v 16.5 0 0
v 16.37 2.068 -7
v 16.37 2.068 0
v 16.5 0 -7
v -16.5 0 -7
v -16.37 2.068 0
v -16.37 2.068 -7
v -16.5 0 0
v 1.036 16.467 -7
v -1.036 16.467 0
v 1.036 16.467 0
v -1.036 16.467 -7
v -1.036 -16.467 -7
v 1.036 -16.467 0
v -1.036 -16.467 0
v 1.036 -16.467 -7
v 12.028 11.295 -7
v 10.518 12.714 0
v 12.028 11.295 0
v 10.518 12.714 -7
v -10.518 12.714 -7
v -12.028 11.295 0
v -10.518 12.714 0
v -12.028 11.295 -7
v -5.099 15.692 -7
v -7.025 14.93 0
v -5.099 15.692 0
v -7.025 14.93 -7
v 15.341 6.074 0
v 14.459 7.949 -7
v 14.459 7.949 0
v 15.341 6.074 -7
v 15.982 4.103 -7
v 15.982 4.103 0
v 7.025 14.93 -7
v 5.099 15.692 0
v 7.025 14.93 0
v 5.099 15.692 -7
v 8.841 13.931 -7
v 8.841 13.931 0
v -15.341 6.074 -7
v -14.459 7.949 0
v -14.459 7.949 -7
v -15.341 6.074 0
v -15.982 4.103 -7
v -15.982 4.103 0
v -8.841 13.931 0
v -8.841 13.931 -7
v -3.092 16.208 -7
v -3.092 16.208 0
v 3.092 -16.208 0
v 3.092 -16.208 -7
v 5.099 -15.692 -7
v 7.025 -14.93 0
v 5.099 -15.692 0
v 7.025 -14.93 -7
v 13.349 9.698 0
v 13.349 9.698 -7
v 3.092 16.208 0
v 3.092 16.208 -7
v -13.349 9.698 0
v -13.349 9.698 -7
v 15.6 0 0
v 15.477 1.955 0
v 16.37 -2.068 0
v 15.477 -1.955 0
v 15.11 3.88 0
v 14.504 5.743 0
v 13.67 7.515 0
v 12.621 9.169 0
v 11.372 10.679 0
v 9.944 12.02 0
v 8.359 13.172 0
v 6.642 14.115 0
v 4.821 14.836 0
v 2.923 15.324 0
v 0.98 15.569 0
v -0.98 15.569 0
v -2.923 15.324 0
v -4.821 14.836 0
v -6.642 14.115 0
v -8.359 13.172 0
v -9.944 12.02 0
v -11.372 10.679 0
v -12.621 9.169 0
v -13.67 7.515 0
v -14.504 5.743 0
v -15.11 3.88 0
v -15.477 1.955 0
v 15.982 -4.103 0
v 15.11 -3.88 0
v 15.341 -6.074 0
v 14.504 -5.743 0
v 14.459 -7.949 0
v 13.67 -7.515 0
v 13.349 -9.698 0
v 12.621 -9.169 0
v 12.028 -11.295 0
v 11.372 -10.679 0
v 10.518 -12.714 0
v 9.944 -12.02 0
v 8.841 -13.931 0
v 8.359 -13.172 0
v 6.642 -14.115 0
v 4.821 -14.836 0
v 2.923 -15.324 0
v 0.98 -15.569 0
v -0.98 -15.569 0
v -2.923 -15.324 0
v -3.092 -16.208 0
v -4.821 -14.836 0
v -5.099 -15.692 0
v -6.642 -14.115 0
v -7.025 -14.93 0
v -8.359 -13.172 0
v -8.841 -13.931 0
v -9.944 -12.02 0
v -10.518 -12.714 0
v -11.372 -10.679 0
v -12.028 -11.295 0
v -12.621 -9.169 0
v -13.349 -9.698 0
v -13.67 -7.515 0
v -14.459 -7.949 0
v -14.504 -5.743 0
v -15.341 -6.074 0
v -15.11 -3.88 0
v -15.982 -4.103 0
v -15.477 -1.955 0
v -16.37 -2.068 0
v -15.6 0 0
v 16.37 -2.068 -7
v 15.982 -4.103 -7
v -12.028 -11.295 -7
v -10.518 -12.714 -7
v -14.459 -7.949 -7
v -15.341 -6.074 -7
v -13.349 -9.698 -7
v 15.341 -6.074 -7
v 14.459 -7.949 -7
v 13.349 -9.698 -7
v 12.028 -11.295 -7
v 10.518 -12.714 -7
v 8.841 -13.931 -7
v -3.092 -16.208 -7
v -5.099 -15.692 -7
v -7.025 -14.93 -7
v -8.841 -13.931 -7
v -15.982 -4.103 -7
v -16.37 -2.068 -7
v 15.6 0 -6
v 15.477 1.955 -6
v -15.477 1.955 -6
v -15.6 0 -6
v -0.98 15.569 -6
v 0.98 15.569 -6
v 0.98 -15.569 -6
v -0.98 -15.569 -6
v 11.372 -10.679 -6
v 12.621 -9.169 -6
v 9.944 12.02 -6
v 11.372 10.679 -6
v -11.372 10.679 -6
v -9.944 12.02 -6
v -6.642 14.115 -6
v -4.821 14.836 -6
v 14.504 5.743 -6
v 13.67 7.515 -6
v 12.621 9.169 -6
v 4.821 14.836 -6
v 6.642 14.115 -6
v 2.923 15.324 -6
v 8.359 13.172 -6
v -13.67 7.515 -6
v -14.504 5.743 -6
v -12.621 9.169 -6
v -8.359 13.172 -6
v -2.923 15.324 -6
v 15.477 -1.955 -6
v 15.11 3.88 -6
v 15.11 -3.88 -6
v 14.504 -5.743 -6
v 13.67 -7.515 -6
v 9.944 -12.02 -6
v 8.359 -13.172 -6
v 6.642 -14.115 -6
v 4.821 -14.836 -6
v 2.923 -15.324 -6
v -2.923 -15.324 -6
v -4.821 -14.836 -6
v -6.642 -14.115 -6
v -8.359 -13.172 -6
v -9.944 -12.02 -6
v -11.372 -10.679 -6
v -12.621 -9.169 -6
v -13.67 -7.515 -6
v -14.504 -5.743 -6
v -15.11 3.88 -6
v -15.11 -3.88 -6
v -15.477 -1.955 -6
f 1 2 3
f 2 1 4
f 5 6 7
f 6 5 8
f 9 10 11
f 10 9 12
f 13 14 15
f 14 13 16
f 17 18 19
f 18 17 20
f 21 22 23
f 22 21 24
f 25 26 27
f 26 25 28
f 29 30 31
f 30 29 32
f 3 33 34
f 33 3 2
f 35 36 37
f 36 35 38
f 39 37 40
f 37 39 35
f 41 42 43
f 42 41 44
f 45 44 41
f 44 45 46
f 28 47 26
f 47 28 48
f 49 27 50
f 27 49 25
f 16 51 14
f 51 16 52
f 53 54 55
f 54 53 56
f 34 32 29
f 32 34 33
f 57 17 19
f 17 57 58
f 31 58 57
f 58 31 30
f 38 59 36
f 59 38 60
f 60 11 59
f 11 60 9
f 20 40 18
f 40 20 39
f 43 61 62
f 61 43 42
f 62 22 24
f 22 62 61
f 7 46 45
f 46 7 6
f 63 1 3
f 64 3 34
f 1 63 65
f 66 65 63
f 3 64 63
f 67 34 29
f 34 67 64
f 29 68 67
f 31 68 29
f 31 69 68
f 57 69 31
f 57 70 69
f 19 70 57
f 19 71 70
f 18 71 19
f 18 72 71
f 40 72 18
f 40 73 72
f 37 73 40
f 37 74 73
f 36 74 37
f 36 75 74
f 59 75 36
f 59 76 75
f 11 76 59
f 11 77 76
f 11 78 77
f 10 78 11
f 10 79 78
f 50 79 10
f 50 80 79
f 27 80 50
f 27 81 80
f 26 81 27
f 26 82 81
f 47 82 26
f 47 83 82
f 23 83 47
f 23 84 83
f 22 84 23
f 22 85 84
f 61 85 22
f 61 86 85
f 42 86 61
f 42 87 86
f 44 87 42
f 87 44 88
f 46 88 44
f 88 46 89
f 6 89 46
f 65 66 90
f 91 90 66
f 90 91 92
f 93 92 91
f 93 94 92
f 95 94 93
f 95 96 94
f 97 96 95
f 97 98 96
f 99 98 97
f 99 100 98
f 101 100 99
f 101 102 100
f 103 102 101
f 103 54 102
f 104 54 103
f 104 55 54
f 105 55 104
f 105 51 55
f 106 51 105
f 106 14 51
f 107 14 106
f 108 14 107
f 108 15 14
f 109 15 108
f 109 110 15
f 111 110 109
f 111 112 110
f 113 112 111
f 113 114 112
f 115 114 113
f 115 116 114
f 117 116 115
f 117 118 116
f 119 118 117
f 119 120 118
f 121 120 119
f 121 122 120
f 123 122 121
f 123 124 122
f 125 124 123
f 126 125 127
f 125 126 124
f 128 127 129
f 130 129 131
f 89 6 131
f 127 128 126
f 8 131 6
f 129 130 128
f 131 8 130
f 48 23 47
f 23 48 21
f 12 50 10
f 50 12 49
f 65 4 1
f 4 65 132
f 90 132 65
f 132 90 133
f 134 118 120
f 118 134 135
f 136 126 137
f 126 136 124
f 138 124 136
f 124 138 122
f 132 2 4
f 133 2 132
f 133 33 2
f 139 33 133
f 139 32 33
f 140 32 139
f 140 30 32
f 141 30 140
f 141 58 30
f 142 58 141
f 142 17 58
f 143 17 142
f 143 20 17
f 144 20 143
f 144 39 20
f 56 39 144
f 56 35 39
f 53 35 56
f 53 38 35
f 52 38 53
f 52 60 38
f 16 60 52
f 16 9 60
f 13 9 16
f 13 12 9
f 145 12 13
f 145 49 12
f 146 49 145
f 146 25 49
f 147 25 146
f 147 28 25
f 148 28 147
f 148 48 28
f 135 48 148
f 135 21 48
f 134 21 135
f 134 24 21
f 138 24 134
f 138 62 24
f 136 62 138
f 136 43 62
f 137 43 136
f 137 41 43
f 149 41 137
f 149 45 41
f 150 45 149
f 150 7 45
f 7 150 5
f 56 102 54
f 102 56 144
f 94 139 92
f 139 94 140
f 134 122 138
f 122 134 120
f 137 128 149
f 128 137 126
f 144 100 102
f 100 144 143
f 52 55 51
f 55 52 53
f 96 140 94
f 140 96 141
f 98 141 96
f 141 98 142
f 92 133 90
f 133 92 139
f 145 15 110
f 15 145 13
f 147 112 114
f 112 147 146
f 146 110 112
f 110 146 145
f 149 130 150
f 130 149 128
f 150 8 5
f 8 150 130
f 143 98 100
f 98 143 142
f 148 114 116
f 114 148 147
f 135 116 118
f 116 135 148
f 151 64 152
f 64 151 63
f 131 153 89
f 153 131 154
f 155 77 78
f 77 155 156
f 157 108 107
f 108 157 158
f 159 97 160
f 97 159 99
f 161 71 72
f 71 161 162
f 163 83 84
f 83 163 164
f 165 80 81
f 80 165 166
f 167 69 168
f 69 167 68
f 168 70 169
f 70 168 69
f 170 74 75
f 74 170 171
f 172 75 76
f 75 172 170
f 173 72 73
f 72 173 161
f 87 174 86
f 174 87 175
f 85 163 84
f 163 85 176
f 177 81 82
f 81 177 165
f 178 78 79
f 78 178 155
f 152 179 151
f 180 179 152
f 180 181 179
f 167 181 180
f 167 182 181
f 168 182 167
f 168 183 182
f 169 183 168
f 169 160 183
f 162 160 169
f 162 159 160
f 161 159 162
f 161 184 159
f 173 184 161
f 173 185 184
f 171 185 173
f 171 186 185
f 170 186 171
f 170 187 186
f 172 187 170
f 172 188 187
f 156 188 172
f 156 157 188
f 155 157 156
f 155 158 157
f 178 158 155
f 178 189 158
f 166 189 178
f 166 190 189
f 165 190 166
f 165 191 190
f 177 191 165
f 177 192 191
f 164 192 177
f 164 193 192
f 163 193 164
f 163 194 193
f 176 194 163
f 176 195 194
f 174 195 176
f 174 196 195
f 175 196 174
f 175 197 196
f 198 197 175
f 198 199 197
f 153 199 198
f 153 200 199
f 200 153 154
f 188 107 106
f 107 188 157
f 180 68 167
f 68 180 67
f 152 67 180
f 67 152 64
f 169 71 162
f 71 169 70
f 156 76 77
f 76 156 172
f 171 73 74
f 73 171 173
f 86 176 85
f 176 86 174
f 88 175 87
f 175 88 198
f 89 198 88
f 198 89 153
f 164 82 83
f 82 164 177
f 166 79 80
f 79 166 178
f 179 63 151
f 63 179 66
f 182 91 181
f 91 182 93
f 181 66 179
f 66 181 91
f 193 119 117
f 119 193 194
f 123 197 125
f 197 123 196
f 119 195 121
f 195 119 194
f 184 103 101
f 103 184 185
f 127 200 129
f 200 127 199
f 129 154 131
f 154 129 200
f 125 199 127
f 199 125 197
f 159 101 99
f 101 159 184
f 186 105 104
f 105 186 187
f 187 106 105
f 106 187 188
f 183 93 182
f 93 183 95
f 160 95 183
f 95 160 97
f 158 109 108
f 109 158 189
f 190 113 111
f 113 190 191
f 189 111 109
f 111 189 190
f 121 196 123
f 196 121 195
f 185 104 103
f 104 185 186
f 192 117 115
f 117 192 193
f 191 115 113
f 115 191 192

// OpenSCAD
$fn = 50;


difference() {
	union() {
		translate(v = [0, 0, -7.0000000000]) {
			cylinder(h = 7, r = 16.5000000000);
		}
	}
	union() {
		#translate(v = [0, 0, -6.0000000000]) {
			cylinder(h = 6, r = 15.6000000000);
		}
	}
}
